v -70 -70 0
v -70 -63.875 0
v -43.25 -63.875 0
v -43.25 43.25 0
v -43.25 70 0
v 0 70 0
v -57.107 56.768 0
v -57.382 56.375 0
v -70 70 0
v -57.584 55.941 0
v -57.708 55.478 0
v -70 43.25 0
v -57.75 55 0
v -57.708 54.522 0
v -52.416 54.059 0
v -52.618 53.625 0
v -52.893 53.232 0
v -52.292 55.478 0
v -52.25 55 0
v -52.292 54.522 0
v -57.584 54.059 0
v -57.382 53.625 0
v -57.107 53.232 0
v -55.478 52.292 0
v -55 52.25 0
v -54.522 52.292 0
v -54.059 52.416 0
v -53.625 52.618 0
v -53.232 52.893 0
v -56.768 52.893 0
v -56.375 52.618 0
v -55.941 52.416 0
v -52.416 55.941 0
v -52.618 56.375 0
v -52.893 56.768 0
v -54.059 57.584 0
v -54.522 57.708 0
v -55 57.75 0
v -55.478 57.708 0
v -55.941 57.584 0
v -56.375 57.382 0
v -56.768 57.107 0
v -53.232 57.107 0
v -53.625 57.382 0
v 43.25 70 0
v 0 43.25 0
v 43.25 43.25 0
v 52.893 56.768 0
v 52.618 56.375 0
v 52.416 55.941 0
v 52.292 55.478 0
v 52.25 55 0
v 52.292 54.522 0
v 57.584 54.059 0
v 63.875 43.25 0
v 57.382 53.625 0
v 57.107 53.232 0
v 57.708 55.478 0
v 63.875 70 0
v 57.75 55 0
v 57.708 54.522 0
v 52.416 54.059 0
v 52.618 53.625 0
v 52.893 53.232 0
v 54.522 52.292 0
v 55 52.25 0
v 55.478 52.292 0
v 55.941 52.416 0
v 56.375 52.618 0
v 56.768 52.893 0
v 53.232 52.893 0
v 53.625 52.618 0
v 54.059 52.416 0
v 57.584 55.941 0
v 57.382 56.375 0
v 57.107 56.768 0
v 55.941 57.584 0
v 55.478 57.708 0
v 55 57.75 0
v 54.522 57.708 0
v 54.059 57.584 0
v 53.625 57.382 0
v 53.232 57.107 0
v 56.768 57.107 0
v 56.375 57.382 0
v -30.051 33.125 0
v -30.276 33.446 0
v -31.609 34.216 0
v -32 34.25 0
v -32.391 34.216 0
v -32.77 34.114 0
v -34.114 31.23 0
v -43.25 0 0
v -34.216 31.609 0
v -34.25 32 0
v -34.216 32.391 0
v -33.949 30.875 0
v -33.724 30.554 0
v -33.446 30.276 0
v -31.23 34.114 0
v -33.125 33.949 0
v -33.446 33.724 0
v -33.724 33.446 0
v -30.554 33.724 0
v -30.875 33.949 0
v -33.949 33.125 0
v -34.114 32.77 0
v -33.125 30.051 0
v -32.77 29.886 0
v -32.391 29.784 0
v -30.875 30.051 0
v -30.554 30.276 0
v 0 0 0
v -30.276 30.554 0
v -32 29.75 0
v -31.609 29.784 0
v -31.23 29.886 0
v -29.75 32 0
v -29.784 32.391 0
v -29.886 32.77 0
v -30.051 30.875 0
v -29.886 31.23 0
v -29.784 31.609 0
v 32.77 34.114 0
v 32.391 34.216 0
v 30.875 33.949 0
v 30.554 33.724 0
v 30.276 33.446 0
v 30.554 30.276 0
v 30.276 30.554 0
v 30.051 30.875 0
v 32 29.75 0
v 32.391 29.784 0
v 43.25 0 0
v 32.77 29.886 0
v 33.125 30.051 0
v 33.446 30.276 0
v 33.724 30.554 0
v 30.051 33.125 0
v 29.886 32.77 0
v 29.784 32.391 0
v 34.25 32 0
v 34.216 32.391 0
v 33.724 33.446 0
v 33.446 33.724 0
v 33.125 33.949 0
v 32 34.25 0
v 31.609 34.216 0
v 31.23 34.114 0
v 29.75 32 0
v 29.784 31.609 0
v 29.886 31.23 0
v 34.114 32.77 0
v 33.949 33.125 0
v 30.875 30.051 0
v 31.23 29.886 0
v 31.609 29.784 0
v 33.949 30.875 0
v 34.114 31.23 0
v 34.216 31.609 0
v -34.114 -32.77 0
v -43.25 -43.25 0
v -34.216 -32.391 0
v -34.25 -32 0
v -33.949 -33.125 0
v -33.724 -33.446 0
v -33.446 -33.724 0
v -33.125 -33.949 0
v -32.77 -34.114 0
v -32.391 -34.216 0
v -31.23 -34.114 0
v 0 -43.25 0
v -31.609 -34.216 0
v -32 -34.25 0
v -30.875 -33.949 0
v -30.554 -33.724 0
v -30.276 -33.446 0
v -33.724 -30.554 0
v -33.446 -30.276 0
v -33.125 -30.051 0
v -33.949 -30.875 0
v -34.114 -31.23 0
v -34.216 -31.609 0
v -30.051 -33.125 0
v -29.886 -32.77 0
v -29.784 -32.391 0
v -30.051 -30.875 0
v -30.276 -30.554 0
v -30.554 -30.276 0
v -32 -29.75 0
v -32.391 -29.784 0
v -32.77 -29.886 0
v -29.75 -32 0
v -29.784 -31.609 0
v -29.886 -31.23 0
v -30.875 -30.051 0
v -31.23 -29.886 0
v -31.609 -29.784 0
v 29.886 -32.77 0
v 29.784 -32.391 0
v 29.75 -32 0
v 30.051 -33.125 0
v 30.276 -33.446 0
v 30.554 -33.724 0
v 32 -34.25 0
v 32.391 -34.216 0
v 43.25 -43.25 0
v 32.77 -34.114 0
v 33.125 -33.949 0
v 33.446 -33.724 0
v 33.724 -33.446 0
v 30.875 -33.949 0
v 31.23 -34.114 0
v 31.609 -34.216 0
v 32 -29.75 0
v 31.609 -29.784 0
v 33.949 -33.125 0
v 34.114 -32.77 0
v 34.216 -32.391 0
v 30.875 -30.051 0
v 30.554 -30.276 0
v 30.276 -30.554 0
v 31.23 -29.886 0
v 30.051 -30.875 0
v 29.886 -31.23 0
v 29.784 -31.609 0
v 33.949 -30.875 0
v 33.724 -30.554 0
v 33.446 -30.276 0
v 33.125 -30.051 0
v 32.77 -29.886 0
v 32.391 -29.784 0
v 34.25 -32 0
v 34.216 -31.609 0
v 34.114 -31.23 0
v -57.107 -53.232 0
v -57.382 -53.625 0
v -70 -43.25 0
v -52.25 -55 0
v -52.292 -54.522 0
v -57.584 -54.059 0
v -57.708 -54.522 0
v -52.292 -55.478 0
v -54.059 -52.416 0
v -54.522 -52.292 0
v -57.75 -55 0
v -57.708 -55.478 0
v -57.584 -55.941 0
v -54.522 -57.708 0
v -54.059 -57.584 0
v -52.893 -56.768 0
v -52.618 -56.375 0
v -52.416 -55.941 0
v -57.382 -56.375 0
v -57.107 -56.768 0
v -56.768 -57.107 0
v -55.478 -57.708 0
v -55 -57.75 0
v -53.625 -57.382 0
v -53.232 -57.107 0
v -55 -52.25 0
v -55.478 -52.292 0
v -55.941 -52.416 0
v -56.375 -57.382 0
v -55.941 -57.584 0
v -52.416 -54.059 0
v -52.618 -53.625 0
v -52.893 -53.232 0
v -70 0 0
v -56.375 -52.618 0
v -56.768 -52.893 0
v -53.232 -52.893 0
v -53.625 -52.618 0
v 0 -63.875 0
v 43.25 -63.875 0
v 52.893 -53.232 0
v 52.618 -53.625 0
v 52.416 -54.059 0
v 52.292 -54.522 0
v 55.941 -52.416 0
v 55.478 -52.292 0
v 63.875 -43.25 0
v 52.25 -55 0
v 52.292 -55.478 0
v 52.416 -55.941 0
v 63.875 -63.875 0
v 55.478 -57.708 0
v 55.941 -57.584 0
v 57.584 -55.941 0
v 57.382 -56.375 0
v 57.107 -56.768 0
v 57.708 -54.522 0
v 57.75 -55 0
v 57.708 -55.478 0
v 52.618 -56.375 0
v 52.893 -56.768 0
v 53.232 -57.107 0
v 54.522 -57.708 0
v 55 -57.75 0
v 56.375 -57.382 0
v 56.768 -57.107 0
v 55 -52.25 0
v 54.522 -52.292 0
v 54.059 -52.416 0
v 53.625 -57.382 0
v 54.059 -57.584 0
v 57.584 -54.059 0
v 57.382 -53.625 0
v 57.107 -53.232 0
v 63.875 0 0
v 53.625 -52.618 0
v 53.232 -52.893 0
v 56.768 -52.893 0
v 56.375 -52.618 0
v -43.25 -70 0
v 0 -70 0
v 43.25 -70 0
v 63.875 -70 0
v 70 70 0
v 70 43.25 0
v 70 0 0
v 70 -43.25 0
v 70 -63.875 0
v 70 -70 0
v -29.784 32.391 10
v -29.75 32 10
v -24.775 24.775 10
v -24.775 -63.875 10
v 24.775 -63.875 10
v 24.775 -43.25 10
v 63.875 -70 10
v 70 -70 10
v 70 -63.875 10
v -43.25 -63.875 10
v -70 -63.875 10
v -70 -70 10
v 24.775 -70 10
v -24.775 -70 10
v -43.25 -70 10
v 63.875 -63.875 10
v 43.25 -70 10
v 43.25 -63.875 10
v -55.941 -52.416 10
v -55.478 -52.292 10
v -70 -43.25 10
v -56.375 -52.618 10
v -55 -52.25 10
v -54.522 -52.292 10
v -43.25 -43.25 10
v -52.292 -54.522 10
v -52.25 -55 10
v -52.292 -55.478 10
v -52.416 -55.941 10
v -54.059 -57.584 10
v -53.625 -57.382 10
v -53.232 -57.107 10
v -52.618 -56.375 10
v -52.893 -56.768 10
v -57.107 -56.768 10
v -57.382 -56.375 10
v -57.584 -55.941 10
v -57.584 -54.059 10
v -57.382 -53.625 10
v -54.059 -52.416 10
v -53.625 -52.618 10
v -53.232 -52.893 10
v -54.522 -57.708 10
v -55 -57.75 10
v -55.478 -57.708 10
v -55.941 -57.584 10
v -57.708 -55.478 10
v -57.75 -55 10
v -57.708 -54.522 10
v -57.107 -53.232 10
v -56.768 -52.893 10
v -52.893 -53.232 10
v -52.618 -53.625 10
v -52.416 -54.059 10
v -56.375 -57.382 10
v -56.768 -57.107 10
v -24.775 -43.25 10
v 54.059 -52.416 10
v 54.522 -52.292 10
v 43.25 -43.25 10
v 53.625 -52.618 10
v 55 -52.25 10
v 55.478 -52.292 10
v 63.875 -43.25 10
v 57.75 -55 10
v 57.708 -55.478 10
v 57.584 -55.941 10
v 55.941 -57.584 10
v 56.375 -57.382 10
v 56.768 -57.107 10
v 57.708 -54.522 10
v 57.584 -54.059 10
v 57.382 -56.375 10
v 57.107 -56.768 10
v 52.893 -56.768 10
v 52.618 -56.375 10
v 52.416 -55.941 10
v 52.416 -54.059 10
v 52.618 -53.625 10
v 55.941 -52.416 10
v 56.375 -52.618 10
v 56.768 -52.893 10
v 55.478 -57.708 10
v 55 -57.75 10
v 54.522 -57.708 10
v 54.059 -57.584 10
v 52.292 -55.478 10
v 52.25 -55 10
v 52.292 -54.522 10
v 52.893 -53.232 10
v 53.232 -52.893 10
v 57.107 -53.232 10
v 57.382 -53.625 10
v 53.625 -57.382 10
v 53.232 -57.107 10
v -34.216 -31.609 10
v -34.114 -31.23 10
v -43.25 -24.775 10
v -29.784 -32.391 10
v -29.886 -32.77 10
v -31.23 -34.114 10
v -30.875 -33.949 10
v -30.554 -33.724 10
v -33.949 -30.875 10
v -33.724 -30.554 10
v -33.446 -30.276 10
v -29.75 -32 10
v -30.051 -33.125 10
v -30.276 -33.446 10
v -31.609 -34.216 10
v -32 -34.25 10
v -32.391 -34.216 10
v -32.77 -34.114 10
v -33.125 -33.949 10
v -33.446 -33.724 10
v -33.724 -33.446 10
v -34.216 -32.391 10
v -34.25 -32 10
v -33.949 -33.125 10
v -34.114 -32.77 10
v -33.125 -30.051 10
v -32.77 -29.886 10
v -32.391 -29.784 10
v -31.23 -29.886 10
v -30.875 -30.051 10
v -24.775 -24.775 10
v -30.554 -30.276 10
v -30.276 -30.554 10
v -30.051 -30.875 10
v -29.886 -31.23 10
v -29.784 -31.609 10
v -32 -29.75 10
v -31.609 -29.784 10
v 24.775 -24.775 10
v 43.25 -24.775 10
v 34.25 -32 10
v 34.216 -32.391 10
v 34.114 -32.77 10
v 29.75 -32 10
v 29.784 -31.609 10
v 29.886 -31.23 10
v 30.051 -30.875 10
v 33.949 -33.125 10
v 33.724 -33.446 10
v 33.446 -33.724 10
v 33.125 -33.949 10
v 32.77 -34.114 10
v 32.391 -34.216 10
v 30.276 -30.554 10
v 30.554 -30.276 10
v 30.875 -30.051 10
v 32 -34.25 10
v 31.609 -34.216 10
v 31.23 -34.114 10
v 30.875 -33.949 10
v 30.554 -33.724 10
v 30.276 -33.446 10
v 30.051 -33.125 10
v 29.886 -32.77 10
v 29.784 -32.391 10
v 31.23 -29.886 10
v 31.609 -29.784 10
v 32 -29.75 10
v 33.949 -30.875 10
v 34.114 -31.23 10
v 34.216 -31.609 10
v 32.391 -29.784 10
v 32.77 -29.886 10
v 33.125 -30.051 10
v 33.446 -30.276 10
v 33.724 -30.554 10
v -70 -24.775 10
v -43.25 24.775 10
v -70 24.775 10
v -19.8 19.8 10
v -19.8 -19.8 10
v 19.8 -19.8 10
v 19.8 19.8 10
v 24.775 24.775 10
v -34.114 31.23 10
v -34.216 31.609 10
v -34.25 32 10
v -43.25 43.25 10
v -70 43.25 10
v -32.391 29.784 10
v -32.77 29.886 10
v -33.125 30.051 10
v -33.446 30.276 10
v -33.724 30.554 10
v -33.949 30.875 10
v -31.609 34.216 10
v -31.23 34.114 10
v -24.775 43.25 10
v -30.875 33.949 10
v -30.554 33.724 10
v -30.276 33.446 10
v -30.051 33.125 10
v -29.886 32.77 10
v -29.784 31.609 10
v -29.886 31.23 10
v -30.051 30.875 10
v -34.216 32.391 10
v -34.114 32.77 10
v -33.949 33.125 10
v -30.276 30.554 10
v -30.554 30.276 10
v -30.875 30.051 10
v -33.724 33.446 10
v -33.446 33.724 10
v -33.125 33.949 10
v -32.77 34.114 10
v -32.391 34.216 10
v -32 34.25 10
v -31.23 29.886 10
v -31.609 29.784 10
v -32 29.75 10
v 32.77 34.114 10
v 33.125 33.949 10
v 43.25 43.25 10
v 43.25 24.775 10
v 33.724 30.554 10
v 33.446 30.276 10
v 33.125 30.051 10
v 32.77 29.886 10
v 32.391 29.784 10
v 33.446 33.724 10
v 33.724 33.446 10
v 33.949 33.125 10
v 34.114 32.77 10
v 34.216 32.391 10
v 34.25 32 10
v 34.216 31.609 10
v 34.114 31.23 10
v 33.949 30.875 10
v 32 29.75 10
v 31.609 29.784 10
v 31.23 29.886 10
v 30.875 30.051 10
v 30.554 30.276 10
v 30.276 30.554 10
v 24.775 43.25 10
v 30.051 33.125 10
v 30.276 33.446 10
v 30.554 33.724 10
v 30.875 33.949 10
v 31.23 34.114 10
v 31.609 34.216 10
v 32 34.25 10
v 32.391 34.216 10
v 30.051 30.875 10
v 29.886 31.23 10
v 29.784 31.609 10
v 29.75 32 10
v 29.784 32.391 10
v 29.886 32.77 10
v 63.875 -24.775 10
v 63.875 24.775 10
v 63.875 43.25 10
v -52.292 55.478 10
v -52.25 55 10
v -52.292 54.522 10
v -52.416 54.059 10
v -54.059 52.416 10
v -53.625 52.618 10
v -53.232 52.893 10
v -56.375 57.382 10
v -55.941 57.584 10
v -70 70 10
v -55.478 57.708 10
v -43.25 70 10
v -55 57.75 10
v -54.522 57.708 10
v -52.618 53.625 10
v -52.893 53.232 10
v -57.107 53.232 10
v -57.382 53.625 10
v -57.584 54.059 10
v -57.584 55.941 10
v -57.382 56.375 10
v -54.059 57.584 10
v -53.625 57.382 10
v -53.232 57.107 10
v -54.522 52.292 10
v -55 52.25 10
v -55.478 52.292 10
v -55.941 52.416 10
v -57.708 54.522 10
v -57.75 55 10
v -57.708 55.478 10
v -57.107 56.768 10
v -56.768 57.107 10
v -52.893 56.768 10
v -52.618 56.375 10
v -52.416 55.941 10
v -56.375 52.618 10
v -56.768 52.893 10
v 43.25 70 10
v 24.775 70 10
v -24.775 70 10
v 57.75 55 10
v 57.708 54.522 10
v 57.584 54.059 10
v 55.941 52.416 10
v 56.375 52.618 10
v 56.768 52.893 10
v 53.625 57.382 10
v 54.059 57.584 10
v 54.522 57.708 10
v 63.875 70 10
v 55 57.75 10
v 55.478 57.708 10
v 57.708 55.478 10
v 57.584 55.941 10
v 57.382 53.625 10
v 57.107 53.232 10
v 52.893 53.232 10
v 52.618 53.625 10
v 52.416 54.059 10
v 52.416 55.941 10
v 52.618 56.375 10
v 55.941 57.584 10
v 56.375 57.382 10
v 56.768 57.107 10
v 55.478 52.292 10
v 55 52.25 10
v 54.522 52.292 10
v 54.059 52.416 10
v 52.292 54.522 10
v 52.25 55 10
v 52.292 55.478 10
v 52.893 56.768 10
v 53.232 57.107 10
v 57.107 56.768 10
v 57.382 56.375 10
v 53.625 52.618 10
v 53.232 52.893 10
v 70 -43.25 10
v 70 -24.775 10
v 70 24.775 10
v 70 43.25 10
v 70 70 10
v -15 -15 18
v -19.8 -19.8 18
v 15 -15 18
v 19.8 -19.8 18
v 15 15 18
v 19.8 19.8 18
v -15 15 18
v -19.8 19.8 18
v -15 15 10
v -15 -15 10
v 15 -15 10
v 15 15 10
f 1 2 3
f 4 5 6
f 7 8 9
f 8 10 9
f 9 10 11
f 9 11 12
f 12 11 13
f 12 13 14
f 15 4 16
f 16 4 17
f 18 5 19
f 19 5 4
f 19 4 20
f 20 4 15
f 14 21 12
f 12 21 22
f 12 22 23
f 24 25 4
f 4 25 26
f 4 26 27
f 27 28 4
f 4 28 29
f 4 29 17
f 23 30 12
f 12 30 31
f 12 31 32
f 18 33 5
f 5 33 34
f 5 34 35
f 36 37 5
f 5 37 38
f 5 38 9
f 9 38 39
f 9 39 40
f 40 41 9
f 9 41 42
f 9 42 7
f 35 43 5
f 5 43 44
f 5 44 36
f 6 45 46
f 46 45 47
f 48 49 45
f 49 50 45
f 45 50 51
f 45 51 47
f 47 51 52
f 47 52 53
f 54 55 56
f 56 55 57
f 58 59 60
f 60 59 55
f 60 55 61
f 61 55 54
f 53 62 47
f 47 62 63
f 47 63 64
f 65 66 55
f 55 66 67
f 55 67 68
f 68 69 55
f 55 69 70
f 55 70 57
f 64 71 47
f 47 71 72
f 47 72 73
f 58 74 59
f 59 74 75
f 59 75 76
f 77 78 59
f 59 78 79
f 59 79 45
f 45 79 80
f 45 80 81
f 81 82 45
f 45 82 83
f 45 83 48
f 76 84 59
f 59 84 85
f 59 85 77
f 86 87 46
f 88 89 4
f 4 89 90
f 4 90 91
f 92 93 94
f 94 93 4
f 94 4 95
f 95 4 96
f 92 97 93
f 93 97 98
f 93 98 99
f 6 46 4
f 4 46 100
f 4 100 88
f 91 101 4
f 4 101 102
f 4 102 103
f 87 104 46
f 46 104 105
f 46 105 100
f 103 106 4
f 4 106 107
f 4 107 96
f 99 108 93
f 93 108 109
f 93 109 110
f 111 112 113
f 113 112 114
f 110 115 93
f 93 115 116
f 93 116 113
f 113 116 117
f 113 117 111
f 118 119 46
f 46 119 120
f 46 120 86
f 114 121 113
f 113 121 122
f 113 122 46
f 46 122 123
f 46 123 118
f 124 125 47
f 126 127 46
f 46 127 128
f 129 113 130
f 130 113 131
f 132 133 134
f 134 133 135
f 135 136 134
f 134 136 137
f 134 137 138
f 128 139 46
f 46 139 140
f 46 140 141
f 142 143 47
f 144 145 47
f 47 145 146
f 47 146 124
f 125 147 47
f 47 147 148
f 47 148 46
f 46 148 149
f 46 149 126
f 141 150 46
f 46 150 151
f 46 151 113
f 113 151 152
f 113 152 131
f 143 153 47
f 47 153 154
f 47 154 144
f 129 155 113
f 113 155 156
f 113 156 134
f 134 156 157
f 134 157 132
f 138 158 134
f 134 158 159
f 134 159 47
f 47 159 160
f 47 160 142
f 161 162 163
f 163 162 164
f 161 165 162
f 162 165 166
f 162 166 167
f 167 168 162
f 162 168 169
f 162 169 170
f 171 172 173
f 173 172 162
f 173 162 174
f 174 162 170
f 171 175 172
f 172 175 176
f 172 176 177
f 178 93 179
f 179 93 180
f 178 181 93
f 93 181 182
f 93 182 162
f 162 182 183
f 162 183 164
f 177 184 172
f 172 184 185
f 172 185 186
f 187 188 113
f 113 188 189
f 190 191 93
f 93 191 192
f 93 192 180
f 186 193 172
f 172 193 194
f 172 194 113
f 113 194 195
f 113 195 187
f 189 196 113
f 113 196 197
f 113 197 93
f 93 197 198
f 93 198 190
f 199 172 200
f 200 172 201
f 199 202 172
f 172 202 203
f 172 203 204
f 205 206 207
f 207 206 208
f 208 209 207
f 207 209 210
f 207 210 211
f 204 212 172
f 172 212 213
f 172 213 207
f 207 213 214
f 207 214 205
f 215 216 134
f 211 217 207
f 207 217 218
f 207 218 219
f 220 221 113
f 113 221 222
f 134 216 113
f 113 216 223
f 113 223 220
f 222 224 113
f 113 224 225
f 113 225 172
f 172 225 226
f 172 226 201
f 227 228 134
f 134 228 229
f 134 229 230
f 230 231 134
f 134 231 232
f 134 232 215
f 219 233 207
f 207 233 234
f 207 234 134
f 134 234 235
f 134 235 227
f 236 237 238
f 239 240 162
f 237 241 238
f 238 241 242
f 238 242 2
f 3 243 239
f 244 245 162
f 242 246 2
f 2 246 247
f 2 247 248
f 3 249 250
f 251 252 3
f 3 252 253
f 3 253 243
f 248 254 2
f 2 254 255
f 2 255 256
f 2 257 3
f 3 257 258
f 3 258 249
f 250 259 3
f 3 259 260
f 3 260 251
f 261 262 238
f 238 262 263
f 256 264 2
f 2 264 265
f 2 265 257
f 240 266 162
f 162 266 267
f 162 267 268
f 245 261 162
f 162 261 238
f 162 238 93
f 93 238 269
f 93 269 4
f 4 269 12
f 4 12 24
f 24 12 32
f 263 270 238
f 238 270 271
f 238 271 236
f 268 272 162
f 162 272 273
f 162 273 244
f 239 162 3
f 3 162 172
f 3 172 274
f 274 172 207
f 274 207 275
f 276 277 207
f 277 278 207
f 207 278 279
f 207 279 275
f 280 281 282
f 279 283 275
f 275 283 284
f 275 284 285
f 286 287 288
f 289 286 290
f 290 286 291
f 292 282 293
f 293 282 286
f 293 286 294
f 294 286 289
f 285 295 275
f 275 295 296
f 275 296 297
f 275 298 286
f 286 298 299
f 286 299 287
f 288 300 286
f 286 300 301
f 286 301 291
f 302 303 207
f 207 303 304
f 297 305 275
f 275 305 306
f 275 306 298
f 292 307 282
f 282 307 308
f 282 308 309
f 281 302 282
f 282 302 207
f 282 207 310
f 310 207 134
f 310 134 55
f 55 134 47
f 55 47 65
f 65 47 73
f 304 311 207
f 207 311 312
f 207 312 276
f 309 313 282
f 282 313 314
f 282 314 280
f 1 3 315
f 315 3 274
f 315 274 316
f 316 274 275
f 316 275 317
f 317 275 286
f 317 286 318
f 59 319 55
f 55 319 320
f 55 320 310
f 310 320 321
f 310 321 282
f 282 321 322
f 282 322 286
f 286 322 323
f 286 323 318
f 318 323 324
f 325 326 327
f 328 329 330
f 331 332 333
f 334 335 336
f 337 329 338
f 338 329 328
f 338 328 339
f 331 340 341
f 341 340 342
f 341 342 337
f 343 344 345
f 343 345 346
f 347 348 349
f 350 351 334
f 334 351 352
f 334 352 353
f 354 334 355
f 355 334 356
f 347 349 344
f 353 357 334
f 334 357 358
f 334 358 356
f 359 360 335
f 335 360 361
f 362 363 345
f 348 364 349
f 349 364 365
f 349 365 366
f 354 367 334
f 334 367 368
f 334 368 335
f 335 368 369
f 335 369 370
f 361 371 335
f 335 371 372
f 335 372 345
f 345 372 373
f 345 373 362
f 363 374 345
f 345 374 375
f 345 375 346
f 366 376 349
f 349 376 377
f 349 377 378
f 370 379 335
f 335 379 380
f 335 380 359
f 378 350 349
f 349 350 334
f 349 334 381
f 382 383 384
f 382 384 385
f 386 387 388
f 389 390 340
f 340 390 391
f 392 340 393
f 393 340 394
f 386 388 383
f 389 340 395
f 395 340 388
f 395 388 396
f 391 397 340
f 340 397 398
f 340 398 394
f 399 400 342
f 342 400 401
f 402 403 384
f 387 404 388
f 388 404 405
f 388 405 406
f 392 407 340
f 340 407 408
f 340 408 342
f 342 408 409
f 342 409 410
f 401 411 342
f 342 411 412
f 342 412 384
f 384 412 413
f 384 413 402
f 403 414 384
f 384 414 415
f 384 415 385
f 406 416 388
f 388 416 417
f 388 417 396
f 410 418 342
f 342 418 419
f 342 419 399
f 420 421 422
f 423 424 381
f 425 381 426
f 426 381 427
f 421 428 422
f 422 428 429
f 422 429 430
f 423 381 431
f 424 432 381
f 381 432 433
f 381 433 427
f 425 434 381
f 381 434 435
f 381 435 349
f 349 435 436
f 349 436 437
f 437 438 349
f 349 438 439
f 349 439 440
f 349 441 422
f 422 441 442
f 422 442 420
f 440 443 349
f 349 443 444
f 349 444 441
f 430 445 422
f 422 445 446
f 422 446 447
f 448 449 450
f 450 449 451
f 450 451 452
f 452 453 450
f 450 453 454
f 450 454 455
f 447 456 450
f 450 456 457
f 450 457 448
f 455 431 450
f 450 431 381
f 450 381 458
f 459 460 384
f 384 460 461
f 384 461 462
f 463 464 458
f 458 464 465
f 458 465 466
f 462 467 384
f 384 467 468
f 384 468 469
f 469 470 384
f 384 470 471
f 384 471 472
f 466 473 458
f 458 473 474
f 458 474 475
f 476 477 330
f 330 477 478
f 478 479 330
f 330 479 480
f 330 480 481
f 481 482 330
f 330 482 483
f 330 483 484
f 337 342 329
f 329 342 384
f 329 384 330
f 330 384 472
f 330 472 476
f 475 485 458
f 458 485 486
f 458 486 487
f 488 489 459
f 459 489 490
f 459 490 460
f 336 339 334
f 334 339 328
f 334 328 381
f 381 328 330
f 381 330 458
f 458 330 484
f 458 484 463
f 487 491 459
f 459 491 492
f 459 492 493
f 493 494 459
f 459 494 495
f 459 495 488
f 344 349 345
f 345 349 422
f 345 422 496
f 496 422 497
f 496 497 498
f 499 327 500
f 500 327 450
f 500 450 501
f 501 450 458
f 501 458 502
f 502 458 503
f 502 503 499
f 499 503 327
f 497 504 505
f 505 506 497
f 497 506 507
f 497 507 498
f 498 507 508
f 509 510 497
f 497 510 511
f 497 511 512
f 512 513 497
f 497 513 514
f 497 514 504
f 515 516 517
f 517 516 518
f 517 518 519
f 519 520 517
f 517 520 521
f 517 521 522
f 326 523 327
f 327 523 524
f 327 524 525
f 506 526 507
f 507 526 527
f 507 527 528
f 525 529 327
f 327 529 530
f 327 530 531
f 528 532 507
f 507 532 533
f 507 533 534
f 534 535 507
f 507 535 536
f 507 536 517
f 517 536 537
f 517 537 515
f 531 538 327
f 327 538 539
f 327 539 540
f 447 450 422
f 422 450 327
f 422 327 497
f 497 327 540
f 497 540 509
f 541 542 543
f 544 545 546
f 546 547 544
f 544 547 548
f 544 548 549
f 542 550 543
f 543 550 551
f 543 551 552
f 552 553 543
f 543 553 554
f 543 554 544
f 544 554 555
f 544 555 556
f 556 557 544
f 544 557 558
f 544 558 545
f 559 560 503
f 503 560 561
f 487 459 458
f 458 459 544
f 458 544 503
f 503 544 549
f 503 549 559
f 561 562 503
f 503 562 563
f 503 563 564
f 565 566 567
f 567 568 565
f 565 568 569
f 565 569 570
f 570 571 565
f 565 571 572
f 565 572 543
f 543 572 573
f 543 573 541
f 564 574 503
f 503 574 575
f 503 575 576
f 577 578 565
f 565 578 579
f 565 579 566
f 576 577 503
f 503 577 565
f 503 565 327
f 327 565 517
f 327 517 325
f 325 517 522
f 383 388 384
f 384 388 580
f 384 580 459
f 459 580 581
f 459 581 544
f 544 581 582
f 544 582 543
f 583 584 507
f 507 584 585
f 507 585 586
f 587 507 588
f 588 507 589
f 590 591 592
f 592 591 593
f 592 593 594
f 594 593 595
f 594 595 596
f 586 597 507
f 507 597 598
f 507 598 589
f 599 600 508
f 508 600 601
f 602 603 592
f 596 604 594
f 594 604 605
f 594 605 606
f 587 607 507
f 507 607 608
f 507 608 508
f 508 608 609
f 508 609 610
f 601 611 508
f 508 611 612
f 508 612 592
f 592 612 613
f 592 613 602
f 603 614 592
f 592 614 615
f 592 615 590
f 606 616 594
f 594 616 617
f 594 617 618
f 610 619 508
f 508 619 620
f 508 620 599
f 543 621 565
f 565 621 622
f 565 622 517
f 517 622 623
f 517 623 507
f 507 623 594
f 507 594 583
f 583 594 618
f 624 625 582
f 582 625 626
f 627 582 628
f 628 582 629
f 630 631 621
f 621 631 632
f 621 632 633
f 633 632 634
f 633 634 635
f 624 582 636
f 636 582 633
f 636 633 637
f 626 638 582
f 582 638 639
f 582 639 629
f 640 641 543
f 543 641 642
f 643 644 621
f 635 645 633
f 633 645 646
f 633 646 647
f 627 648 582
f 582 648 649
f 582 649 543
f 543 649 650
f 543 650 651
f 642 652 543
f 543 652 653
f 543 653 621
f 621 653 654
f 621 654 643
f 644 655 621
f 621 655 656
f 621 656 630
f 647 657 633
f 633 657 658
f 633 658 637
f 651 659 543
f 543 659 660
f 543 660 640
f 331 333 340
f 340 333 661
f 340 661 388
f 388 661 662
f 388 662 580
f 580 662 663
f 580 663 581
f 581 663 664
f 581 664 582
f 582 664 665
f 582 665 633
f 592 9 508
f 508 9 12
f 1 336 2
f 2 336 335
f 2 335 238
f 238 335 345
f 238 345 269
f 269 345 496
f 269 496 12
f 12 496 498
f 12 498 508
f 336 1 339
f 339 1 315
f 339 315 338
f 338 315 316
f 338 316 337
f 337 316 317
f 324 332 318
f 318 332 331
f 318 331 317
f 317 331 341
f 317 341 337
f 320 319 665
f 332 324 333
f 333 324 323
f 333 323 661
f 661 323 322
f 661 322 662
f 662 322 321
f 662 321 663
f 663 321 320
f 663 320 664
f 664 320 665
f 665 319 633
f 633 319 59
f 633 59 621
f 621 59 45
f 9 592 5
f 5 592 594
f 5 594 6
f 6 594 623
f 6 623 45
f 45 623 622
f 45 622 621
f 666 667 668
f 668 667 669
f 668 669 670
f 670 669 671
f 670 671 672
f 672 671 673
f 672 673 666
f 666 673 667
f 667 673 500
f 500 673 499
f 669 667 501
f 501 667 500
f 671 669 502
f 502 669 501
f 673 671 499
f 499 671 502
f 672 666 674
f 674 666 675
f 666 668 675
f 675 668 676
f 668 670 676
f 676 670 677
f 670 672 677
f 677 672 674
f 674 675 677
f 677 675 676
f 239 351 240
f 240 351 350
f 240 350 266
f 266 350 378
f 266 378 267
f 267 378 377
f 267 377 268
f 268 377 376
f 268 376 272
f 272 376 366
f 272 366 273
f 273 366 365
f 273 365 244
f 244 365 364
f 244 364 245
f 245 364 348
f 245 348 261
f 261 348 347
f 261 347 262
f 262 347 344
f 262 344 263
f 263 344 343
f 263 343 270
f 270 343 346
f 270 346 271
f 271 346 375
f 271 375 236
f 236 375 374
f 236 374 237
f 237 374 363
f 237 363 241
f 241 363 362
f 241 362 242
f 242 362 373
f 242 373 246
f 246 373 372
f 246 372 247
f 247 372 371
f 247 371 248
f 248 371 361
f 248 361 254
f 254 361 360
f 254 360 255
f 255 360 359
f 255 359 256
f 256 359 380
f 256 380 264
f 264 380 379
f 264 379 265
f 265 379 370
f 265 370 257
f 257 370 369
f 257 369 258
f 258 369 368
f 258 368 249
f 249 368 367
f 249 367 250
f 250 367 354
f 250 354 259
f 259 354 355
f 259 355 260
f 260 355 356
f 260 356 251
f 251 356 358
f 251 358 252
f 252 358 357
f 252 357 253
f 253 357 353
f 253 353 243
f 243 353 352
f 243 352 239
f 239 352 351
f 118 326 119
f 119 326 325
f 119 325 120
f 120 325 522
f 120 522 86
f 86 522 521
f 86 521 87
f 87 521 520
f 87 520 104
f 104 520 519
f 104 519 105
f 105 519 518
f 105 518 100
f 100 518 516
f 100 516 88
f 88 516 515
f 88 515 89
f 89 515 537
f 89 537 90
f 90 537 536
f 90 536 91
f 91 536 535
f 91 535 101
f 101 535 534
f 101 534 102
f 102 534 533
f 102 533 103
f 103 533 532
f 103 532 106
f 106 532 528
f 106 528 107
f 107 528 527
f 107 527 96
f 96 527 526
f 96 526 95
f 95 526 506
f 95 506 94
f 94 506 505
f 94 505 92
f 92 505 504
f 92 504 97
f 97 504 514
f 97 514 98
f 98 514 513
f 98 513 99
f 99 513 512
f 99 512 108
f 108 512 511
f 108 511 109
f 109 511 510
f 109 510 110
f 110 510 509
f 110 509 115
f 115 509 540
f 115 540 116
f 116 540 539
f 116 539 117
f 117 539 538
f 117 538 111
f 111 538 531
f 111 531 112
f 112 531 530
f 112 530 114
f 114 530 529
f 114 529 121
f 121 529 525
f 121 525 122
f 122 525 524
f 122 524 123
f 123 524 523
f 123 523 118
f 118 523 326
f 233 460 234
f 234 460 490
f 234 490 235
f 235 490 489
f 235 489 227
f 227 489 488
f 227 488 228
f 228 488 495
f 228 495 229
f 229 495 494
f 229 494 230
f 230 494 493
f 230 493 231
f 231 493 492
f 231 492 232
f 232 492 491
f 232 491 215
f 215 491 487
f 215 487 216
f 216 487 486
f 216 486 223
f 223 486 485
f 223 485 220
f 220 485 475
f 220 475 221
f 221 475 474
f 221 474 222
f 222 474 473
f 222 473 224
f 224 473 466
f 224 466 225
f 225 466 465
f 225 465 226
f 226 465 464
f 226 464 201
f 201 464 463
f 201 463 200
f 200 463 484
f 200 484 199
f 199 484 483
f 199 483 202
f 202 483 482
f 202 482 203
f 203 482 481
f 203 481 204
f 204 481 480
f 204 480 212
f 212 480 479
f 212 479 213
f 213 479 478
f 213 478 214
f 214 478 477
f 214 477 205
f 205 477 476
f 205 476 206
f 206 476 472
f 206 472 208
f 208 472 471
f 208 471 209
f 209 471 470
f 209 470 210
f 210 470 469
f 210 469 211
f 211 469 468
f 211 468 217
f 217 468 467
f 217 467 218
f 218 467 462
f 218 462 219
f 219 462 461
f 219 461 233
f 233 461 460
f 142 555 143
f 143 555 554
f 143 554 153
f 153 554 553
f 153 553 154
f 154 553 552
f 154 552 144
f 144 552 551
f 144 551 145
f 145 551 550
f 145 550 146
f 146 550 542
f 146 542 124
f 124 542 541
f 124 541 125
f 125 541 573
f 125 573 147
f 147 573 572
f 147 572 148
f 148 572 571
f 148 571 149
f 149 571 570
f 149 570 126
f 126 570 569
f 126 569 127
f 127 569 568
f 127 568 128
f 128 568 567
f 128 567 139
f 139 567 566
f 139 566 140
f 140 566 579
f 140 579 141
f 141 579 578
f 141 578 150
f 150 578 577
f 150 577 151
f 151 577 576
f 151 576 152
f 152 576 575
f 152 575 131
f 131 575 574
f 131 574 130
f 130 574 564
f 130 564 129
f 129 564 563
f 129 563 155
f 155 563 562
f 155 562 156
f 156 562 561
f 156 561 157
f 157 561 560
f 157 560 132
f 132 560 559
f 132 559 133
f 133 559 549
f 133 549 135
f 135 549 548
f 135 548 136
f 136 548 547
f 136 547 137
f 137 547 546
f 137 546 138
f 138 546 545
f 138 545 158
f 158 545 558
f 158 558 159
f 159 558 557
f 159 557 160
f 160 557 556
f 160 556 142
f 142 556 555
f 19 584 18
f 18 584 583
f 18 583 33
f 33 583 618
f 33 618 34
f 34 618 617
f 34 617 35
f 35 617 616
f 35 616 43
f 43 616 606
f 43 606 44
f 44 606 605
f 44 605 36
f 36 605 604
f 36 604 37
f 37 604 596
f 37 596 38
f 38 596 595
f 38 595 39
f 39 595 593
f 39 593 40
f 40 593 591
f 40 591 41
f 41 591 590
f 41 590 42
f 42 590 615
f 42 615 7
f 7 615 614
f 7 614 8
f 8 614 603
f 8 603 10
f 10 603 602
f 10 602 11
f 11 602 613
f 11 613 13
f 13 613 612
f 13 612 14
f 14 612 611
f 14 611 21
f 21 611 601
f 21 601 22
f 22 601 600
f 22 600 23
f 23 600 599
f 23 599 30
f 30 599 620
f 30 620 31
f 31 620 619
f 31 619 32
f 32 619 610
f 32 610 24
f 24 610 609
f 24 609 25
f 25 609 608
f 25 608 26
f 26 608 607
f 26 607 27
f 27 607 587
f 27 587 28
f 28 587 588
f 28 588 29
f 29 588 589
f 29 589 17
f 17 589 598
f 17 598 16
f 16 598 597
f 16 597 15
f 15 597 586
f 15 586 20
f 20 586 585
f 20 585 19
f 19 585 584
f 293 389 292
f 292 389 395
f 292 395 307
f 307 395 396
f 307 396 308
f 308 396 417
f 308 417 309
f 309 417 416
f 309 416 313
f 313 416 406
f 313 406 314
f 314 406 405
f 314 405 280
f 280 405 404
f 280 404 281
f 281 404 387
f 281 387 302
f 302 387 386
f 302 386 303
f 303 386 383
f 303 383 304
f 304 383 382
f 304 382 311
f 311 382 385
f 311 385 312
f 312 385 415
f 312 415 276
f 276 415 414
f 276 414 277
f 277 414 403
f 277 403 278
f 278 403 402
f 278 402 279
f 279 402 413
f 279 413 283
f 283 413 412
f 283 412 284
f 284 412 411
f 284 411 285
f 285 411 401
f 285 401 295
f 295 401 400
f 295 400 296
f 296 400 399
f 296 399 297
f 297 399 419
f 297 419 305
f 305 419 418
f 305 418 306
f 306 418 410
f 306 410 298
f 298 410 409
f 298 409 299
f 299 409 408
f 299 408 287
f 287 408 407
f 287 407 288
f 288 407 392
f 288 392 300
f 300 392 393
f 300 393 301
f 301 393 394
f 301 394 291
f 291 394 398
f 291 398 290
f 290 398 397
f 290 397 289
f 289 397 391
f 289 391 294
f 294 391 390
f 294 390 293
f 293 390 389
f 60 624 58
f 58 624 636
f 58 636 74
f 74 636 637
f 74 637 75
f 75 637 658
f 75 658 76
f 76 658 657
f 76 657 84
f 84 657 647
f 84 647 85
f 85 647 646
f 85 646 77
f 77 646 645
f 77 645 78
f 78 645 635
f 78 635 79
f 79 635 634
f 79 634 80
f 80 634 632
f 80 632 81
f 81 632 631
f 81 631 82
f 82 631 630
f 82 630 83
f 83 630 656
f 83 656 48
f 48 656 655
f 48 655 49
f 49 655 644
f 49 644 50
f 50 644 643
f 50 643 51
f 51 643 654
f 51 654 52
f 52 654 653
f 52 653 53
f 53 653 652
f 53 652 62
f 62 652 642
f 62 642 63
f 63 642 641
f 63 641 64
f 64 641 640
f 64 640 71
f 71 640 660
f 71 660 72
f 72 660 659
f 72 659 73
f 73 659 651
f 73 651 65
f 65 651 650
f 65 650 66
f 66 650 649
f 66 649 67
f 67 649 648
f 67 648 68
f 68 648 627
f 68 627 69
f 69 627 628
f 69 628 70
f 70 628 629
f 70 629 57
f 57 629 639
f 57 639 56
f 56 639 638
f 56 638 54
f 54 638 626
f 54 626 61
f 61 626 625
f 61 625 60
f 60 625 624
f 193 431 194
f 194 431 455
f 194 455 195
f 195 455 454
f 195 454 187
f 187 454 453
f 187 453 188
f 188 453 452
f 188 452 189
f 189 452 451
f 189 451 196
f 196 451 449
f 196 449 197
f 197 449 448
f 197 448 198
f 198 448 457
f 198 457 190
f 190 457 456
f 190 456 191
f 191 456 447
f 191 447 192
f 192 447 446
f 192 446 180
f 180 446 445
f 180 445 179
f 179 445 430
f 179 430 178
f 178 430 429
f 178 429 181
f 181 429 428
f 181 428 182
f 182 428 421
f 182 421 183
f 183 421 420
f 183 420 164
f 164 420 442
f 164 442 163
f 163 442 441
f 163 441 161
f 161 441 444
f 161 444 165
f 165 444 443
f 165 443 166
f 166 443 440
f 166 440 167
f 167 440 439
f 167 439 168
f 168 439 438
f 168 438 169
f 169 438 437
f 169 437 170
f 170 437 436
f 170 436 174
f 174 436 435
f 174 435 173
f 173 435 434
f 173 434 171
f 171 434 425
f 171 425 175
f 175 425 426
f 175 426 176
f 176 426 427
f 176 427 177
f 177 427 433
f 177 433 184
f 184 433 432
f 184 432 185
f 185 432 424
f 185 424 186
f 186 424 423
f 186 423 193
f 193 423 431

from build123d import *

# Parameters (mm, degrees)
SKETCH_1_W            = 140
SKETCH_1_H            = 140
EXTRUDE_140X140_DEPTH = 10
EXTRUDE_START         = 10
SKETCH_2_W            = 39.6
SKETCH_2_H            = 39.6
SKETCH_2_W_2          = 30
SKETCH_2_H_2          = 30
EXTRUDE_39P6_DEPTH    = 8
M5_M4_DEPTH           = 101.618089825
M5_M4_DEPTH_BACK      = 101.618089825
SKETCH_3_R            = 2.75
SKETCH_3_R_2          = 2.25


with BuildPart() as part:
    # 草图1 → 锚固底板140x140 (new body)
    with BuildSketch(Plane.XY):
        Rectangle(SKETCH_1_W, SKETCH_1_H)
    extrude(amount=EXTRUDE_140X140_DEPTH)

    # 草图2 → 立柱定位凸台39p6 (add)
    with BuildSketch(Plane.XY.offset(EXTRUDE_START)):
        Rectangle(SKETCH_2_W, SKETCH_2_H)
        Rectangle(SKETCH_2_W_2, SKETCH_2_H_2, mode=Mode.SUBTRACT)
    extrude(amount=EXTRUDE_39P6_DEPTH)

    # 草图3 → 桌面M5与立柱M4通孔 (cut, two sides: drawn at the far end of the back side and taken through both)
    with BuildSketch(Plane.XY.offset(-M5_M4_DEPTH_BACK)):
        with Locations((-55, -55)):
            Circle(SKETCH_3_R)
        with Locations((-55, 55)):
            Circle(SKETCH_3_R)
        with Locations((55, -55)):
            Circle(SKETCH_3_R)
        with Locations((55, 55)):
            Circle(SKETCH_3_R)
        with Locations((-32, -32)):
            Circle(SKETCH_3_R_2)
        with Locations((-32, 32)):
            Circle(SKETCH_3_R_2)
        with Locations((32, -32)):
            Circle(SKETCH_3_R_2)
        with Locations((32, 32)):
            Circle(SKETCH_3_R_2)
    extrude(amount=M5_M4_DEPTH + M5_M4_DEPTH_BACK, mode=Mode.SUBTRACT)


solid = part.part
